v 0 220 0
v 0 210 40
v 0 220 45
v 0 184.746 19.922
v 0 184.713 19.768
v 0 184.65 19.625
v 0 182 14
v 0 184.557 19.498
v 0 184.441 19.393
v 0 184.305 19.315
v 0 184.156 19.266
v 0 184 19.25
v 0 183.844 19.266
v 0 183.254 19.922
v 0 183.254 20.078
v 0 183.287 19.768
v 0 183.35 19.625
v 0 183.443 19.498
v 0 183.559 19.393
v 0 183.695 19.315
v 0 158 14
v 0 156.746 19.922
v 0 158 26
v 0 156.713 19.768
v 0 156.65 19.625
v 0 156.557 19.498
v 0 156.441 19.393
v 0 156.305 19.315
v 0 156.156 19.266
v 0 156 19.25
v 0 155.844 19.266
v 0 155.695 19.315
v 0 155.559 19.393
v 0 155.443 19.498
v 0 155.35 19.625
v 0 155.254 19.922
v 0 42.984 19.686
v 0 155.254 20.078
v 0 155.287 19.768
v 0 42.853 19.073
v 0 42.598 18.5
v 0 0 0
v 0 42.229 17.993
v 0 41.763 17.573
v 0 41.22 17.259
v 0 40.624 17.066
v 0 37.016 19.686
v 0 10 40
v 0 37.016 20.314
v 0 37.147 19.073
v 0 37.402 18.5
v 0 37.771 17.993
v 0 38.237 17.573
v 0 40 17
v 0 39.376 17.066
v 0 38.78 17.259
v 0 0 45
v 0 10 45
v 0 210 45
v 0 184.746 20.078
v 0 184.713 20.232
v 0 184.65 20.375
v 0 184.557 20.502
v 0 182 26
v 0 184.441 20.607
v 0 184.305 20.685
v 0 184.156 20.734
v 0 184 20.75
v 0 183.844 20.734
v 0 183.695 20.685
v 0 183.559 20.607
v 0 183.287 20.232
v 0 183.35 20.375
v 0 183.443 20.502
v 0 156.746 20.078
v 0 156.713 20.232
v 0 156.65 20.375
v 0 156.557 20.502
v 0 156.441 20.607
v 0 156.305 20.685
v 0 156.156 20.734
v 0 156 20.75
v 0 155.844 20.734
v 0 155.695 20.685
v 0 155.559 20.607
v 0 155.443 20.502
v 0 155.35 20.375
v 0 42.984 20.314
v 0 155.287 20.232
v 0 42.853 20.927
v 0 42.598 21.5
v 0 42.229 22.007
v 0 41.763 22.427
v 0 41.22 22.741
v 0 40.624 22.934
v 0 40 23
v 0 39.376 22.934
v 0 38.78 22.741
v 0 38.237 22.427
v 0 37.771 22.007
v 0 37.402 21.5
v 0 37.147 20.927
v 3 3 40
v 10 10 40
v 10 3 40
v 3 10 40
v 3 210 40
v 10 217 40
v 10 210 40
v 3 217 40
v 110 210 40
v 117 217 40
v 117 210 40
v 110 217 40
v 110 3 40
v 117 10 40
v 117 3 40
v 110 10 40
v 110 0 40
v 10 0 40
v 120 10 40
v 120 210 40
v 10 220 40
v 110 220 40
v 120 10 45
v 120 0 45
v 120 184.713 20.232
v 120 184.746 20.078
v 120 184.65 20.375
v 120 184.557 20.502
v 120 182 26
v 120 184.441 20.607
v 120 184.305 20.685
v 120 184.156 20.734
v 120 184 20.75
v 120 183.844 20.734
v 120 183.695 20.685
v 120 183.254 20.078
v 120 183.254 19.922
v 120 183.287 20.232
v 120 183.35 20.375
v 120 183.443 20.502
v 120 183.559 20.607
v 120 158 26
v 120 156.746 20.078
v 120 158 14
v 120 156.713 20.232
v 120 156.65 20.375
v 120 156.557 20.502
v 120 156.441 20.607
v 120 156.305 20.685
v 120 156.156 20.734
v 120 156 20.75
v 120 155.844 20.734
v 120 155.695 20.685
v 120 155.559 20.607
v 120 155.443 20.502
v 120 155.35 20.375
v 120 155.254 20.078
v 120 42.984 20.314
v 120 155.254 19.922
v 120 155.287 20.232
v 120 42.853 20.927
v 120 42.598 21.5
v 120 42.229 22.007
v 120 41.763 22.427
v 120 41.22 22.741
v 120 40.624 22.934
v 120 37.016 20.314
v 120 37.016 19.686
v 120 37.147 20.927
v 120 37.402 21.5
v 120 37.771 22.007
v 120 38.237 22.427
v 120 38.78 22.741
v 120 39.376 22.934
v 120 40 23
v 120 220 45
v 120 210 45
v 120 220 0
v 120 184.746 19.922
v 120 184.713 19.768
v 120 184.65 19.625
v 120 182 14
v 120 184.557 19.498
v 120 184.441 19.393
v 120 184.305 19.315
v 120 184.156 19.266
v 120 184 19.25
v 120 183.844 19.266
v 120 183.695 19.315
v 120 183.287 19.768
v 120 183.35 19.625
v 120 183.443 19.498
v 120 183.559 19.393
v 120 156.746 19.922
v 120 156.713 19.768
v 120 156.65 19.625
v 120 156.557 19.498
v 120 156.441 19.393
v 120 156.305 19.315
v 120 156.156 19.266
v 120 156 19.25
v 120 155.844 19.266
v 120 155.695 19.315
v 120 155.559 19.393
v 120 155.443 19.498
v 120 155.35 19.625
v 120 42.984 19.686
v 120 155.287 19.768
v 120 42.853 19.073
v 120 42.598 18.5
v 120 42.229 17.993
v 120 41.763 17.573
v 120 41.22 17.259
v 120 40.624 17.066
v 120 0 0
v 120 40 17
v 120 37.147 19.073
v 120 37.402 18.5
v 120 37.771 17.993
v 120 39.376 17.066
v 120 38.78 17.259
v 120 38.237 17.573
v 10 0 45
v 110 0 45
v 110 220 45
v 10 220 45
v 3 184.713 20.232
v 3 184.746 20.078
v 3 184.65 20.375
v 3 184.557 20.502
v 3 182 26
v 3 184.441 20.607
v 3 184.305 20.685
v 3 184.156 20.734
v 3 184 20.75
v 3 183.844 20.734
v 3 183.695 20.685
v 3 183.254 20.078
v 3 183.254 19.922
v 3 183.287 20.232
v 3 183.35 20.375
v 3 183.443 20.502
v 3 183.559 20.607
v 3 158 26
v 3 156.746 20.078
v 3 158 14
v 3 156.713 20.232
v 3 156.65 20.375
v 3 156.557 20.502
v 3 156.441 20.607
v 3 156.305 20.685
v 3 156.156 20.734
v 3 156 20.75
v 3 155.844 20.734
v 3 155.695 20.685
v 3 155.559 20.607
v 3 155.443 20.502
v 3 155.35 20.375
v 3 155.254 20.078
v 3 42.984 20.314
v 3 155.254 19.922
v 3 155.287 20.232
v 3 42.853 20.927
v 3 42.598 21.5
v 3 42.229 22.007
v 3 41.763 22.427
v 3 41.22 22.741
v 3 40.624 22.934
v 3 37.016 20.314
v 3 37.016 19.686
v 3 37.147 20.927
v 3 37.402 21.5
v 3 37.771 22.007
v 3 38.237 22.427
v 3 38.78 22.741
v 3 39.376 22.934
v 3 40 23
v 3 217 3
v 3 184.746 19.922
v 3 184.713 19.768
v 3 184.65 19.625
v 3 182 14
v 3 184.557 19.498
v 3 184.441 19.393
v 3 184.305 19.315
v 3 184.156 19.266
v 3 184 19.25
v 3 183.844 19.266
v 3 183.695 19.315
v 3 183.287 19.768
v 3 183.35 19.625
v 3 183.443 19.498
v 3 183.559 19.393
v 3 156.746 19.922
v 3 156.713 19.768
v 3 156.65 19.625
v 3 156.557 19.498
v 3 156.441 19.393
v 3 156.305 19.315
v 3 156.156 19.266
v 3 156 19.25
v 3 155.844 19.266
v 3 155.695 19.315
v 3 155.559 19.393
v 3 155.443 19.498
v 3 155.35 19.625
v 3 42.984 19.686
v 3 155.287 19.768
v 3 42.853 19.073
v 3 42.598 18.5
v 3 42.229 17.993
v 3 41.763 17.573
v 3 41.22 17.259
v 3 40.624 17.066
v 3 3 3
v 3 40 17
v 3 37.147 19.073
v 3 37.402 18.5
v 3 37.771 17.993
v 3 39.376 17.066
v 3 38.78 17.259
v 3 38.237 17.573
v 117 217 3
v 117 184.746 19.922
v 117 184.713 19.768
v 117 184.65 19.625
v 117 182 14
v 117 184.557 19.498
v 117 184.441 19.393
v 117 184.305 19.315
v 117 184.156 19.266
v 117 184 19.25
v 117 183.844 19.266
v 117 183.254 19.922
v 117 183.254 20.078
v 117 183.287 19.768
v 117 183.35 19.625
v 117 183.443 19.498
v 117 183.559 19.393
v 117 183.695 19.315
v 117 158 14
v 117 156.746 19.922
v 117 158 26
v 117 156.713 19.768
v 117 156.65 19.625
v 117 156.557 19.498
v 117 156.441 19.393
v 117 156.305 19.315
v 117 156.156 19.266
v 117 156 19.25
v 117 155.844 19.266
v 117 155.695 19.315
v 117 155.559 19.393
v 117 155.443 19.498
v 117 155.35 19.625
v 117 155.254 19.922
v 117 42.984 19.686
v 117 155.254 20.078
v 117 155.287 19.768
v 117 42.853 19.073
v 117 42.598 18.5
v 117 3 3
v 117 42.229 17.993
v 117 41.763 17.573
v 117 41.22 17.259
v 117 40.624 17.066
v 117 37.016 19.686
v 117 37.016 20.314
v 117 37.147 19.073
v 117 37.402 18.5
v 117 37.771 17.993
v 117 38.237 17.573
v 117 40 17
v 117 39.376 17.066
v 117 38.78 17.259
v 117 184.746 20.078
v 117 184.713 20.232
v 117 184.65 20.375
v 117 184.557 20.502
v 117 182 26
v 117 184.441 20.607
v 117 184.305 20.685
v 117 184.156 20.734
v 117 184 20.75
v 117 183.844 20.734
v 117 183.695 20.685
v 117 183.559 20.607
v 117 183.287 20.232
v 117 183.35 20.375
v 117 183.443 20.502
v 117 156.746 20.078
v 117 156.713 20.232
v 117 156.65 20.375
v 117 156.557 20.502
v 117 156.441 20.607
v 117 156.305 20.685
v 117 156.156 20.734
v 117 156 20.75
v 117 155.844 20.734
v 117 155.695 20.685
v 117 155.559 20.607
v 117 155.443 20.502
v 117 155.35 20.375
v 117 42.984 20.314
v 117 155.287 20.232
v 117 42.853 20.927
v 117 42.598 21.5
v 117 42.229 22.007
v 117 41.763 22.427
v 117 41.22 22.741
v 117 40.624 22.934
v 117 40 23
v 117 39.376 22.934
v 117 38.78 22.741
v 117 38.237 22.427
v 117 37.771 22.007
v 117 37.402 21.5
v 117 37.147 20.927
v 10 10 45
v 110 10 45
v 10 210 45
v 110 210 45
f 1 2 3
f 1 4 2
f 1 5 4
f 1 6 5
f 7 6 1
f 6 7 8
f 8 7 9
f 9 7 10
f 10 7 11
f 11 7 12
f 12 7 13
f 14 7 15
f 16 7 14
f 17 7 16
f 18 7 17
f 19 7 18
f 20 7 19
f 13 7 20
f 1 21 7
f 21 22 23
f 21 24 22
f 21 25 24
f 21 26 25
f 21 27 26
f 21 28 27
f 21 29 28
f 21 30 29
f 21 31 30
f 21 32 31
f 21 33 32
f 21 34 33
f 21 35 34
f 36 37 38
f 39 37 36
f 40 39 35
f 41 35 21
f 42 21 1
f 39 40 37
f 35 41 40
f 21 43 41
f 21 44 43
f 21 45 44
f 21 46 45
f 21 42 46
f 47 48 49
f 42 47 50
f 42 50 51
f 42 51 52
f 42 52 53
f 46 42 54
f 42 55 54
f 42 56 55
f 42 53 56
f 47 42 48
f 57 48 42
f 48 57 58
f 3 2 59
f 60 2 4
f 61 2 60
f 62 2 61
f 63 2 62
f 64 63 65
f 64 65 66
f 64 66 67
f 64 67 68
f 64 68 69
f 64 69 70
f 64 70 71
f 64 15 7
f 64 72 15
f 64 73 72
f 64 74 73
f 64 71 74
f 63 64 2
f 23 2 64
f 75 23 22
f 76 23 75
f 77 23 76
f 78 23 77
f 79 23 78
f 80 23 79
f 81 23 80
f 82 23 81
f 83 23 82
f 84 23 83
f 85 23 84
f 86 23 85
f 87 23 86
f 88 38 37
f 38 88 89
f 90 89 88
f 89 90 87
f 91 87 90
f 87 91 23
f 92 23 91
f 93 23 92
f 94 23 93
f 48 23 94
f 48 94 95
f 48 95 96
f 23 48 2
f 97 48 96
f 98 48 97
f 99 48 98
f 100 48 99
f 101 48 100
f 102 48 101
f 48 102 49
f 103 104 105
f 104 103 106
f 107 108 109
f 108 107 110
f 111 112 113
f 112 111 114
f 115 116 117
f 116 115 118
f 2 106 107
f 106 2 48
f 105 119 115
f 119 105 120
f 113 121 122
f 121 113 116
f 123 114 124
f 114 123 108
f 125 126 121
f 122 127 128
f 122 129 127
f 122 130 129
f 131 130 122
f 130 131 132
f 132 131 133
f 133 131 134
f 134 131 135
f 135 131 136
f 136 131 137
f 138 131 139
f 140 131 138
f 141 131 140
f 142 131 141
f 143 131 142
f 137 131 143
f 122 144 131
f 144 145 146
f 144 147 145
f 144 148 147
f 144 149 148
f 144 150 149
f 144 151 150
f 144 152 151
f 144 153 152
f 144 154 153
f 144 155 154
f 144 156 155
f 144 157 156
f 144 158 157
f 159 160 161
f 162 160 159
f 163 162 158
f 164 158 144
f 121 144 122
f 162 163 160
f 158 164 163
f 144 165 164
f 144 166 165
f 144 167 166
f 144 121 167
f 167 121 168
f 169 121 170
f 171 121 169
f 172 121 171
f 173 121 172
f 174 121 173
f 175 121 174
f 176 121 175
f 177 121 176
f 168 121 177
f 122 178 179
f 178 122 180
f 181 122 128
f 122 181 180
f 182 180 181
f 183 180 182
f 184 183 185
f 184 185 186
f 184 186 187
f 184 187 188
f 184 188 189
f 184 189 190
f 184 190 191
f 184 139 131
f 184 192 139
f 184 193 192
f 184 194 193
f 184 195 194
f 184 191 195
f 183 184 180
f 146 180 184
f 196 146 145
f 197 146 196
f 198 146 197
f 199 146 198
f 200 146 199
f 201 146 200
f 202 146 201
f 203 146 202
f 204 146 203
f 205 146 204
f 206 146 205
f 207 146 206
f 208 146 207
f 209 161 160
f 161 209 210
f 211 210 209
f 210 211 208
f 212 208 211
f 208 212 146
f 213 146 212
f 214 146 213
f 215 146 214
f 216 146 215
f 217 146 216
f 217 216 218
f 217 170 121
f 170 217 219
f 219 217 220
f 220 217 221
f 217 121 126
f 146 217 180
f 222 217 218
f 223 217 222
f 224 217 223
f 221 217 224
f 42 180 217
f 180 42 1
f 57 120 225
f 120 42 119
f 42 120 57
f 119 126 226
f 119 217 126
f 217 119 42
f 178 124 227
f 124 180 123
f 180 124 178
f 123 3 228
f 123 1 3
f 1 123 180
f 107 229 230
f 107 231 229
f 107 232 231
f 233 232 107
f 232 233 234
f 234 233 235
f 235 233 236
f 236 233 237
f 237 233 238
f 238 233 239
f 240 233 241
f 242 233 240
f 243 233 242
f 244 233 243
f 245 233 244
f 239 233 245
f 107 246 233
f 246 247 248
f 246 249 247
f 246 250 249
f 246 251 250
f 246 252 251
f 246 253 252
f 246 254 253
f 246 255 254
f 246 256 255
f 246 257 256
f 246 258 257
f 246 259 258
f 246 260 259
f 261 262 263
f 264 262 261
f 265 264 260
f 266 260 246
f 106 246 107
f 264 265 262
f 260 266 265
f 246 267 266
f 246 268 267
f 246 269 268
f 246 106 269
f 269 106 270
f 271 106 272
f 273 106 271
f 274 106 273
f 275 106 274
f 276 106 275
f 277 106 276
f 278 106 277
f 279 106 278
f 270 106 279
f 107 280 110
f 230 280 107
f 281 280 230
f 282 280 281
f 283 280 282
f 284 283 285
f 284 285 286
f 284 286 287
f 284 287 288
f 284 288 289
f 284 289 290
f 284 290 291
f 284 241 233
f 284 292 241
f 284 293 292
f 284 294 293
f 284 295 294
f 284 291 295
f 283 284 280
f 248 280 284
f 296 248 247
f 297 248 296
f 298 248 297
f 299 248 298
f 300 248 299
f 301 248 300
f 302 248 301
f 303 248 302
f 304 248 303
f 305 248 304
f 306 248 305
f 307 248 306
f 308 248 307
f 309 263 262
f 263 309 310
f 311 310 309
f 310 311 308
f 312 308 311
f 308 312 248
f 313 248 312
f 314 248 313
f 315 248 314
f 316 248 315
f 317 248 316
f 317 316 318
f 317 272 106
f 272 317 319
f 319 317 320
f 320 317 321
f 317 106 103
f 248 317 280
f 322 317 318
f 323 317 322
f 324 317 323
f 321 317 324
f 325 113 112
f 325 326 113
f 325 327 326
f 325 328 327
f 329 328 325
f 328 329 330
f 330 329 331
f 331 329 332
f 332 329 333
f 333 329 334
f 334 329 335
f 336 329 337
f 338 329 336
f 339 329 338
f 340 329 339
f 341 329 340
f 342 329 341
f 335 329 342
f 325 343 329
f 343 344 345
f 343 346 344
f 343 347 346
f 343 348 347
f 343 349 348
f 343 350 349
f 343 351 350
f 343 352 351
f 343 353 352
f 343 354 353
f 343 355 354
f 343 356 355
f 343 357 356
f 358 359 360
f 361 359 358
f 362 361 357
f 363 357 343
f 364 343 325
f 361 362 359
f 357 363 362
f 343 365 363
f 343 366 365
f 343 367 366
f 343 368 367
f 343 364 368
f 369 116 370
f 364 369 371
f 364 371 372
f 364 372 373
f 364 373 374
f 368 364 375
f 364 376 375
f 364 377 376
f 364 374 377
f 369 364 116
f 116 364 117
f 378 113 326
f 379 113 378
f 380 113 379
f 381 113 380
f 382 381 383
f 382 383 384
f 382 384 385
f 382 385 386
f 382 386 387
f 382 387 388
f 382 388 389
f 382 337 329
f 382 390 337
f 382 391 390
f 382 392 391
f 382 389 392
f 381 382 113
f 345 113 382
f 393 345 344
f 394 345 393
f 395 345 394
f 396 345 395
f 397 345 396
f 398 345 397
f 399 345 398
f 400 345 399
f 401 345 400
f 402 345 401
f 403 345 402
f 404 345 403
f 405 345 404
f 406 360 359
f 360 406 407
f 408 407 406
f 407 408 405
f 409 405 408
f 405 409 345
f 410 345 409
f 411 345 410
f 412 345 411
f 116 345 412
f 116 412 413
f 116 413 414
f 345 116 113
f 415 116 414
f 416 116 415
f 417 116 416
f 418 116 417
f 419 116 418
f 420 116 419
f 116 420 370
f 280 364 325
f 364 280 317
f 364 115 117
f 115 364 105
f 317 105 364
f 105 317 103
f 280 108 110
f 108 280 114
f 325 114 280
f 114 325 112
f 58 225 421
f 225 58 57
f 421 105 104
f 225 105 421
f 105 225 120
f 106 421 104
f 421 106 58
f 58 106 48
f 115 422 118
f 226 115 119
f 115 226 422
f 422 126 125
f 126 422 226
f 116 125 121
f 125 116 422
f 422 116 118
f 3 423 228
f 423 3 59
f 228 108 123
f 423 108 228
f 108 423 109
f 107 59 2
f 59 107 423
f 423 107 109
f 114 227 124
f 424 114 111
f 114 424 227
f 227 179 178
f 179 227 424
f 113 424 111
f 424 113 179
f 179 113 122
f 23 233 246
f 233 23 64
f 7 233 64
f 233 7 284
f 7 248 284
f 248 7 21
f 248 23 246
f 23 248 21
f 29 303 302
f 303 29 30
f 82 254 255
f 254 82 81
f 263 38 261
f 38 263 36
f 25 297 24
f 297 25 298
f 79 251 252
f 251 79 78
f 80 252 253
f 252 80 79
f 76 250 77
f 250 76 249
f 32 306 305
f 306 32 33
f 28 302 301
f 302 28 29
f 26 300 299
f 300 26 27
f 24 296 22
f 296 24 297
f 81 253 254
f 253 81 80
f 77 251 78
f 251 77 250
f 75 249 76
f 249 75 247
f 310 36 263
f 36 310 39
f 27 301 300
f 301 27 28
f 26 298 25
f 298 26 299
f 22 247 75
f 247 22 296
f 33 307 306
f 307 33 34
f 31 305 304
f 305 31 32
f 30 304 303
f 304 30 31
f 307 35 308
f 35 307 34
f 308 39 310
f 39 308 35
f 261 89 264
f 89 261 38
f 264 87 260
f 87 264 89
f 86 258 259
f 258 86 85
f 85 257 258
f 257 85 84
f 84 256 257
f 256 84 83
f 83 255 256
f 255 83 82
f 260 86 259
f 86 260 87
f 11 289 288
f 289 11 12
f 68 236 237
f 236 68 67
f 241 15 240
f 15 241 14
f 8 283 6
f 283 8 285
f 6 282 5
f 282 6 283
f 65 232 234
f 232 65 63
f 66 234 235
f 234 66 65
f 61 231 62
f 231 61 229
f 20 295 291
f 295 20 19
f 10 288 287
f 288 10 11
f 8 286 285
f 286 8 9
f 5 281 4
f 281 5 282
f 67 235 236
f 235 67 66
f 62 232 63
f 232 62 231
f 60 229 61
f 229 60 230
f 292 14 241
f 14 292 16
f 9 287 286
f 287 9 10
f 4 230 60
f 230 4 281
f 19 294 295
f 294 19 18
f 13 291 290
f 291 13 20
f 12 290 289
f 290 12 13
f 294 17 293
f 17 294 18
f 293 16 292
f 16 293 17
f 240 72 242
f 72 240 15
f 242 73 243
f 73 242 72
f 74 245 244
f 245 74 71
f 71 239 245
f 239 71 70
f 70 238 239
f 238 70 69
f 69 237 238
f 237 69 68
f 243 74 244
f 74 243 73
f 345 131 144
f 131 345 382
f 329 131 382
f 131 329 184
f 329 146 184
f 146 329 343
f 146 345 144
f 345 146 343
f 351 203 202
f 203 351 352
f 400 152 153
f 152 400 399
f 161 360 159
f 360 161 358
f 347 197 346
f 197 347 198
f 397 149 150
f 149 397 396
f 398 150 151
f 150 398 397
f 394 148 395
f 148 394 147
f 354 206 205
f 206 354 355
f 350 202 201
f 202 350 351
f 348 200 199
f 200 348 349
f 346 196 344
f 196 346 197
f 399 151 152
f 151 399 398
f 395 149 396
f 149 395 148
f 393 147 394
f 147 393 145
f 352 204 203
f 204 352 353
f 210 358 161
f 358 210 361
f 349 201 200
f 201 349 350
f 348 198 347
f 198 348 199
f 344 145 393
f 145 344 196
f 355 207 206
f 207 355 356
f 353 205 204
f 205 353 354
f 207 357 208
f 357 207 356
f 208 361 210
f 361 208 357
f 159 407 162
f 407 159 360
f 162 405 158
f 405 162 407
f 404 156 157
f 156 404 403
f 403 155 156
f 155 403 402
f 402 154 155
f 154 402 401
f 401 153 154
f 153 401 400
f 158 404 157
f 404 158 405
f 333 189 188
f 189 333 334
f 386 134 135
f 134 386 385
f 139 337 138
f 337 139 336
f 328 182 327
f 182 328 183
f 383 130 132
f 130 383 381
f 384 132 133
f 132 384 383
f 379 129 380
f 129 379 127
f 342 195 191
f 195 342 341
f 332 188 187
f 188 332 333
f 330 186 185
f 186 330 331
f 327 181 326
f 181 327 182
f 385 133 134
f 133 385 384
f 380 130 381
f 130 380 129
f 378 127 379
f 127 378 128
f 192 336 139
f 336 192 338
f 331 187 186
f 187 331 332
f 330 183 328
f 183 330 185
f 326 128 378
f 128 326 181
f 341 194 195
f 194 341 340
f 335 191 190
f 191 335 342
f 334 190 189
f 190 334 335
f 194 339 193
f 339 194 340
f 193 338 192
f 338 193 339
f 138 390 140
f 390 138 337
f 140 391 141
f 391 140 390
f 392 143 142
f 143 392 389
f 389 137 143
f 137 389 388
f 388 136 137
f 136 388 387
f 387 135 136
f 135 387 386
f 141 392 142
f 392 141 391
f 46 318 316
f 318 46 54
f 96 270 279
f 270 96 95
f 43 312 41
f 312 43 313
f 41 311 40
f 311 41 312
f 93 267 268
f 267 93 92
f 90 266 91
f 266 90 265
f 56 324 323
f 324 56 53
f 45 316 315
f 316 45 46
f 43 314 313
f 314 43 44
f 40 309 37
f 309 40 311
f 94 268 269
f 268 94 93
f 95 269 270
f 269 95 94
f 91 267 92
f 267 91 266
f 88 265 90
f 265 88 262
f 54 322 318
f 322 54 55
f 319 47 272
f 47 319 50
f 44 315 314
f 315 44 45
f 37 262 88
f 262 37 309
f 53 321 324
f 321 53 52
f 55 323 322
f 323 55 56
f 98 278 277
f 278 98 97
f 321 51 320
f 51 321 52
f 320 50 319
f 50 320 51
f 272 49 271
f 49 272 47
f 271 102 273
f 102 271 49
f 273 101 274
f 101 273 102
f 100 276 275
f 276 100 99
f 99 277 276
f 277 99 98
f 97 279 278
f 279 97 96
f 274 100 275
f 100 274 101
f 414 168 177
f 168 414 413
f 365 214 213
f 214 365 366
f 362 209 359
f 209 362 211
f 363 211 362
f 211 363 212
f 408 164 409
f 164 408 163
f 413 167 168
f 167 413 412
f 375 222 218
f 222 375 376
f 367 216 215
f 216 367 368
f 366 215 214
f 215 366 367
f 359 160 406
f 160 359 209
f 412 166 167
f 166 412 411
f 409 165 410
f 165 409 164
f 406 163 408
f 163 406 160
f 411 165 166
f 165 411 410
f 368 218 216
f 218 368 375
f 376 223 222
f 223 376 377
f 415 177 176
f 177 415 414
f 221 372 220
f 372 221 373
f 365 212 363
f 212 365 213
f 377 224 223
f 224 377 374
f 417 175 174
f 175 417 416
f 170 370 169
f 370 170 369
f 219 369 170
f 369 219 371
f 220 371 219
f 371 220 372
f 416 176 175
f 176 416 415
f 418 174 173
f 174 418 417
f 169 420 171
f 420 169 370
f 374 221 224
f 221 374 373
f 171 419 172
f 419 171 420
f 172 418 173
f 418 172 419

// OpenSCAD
// Title: Robot Assembly (Chassis + 4 Wheels)
// Description: Parametric chassis with 4 wheels positioned 2mm outward.
// Combined and Modified by: AI Assistant

/*
 * =====================================================================
 * 1. GLOBAL PARAMETERS (Merged)
 * =====================================================================
 */

// --- Chassis Dimensions ---
chassis_length = 220;  // [mm] Y-axis
chassis_width = 120;   // [mm] X-axis
chassis_height = 40;   // [mm] Z-axis
wall_thickness = 3;    // [mm]

// --- Servo Cutouts ---
servo_cutout_width = 24;
servo_cutout_height = 12;
servo_hole_distance = 28;
servo_hole_diameter = 1.5;
servo_pos_from_front = 50; // Distance from servo center to front

// --- Rear Axle Holes ---
rear_hole_diameter = 6;
rear_hole_pos_from_back = 40;

// --- Vertical Positioning ---
cutouts_z_pos = 20; // Height of axles/servos

// --- Chassis Posts ---
post_size = 10;
post_height = 5;

// --- Wheel Parameters ---
wheel_diameter = 60;
wheel_thickness = 5;
wheel_offset = 2; // [mm] Distance from chassis wall to wheel

// --- Tread Parameters ---
tread_grooves = 40;
tread_groove_depth = 1.5;
tread_groove_width = 4;

// --- Wheel Mounting Parameters ---
mount_hole_distance = 32;
mount_hole_diameter = 1.5;
servo_horn_recess_depth = 2.5;
servo_spline_hole_diameter = 6;
servo_horn_hub_diameter = 7;
servo_horn_arm_width = 6;

// --- Quality ---
$fn = 30;

/*
 * =====================================================================
 * 2. MODULE: CHASSIS
 * =====================================================================
 */
module make_chassis() {
    
    // Sub-module for body
    module chassis_body_shape() {
        difference() {
            cube([chassis_width, chassis_length, chassis_height]);
            translate([wall_thickness, wall_thickness, wall_thickness]) {
                cube([
                    chassis_width - 2 * wall_thickness, 
                    chassis_length - 2 * wall_thickness, 
                    chassis_height
                ]);
            }
        }
    }

    // Sub-module for posts
    module mounting_posts() {
        translate([0, 0, chassis_height])
            cube([post_size, post_size, post_height]);
        translate([chassis_width - post_size, 0, chassis_height])
            cube([post_size, post_size, post_height]);
        translate([0, chassis_length - post_size, chassis_height])
            cube([post_size, post_size, post_height]);
        translate([chassis_width - post_size, chassis_length - post_size, chassis_height])
            cube([post_size, post_size, post_height]);
    }

    difference() {
        union() {
            chassis_body_shape();
            mounting_posts();
        }
        
        y_center_servo = chassis_length - servo_pos_from_front;
        z_center = cutouts_z_pos;
        
        // --- Left Servo ---
        translate([-1, y_center_servo - servo_cutout_width/2, z_center - servo_cutout_height/2])
            cube([wall_thickness + 2, servo_cutout_width, servo_cutout_height]);
        translate([wall_thickness/2, y_center_servo - servo_hole_distance/2, z_center])
            rotate([0, 90, 0]) cylinder(d=servo_hole_diameter, h=wall_thickness*3, center=true);
        translate([wall_thickness/2, y_center_servo + servo_hole_distance/2, z_center])
            rotate([0, 90, 0]) cylinder(d=servo_hole_diameter, h=wall_thickness*3, center=true);
        
        // --- Right Servo ---
        translate([chassis_width - wall_thickness, y_center_servo - servo_cutout_width/2, z_center - servo_cutout_height/2])
            cube([wall_thickness + 2, servo_cutout_width, servo_cutout_height]);
        translate([chassis_width - wall_thickness/2, y_center_servo - servo_hole_distance/2, z_center])
            rotate([0, 90, 0]) cylinder(d=servo_hole_diameter, h=wall_thickness*3, center=true);
        translate([chassis_width - wall_thickness/2, y_center_servo + servo_hole_distance/2, z_center])
            rotate([0, 90, 0]) cylinder(d=servo_hole_diameter, h=wall_thickness*3, center=true);
        
        // --- Rear Axles ---
        translate([-1, rear_hole_pos_from_back, cutouts_z_pos])
            rotate([0, 90, 0]) cylinder(d = rear_hole_diameter, h = wall_thickness + 2);
        translate([chassis_width - wall_thickness, rear_hole_pos_from_back, cutouts_z_pos])
            rotate([0, 90, 0]) cylinder(d = rear_hole_diameter, h = wall_thickness + 2);
    }
}

/*
 * =====================================================================
 * 3. MODULE: WHEEL
 * =====================================================================
 */
module make_wheel() {
    
    module wheel_base() {
        cylinder(d = wheel_diameter, h = wheel_thickness);
    }

    module tread_cutter() {
        if (tread_grooves > 0) {
            for (i = [0 : 360/tread_grooves : 359]) {
                rotate([0, 0, i]) {
                    translate([wheel_diameter/2 - tread_groove_depth, -tread_groove_width/2, -1]) {
                        cube([tread_groove_depth + 1, tread_groove_width, wheel_thickness + 2]);
                    }
                }
            }
        }
    }

    module servo_horn_cutout() {
        cutter_h = servo_horn_recess_depth + 1;
        translate([0, 0, wheel_thickness - servo_horn_recess_depth]) {
            hull() {
                cylinder(d = servo_horn_hub_diameter, h = cutter_h);
                translate([mount_hole_distance / 2, 0, 0])
                    cylinder(d = servo_horn_arm_width, h = cutter_h);
                translate([-mount_hole_distance / 2, 0, 0])
                    cylinder(d = servo_horn_arm_width, h = cutter_h);
            }
        }
    }

    module all_holes() {
        hole_h = wheel_thickness + 2;
        translate([0, 0, wheel_thickness / 2]) {
            cylinder(d = servo_spline_hole_diameter, h = hole_h, center = true);
            translate([mount_hole_distance / 2, 0, 0])
                cylinder(d = mount_hole_diameter, h = hole_h, center = true);
            translate([-mount_hole_distance / 2, 0, 0])
                cylinder(d = mount_hole_diameter, h = hole_h, center = true);
        }
    }

    difference() {
        wheel_base();
        tread_cutter();
        servo_horn_cutout();
        all_holes();
    }
}

/*
 * =====================================================================
 * 4. ASSEMBLY (Main Code)
 * =====================================================================
 */

// 1. Render the Chassis
color("yellow") 
    make_chassis();

// Calculated Y coordinates
y_front = chassis_length - servo_pos_from_front;
y_rear = rear_hole_pos_from_back;

// Calculated X coordinates for wheels (2mm gap)
// Left wheel origin: Gap (2mm) + Thickness (5mm) = 7mm from edge
x_left_wheel = 0 - wheel_offset - wheel_thickness; 
// Right wheel origin: Width + Gap (2mm) + Thickness (5mm)
x_right_wheel = chassis_width + wheel_offset + wheel_thickness; 

// 2. Render 4 Wheels
// Note: We rotate the wheels so the "Recess" (Servo horn side) faces the chassis.
// The recess is at the top of the cylinder (Z=thickness).

// Front Left
*translate([x_left_wheel, y_front, cutouts_z_pos])
    rotate([0, 90, 0]) // Rotate 90 deg so top faces Right (towards chassis)
    color("White") make_wheel();

// Front Right
*translate([x_right_wheel, y_front, cutouts_z_pos])
    rotate([0, -90, 0]) // Rotate -90 deg so top faces Left (towards chassis)
    color("White") make_wheel();

// Rear Left
*translate([x_left_wheel, y_rear, cutouts_z_pos])
    rotate([0, 90, 0])
    color("White") make_wheel();

// Rear Right
*translate([x_right_wheel, y_rear, cutouts_z_pos])
    rotate([0, -90, 0])
    color("White") make_wheel();
